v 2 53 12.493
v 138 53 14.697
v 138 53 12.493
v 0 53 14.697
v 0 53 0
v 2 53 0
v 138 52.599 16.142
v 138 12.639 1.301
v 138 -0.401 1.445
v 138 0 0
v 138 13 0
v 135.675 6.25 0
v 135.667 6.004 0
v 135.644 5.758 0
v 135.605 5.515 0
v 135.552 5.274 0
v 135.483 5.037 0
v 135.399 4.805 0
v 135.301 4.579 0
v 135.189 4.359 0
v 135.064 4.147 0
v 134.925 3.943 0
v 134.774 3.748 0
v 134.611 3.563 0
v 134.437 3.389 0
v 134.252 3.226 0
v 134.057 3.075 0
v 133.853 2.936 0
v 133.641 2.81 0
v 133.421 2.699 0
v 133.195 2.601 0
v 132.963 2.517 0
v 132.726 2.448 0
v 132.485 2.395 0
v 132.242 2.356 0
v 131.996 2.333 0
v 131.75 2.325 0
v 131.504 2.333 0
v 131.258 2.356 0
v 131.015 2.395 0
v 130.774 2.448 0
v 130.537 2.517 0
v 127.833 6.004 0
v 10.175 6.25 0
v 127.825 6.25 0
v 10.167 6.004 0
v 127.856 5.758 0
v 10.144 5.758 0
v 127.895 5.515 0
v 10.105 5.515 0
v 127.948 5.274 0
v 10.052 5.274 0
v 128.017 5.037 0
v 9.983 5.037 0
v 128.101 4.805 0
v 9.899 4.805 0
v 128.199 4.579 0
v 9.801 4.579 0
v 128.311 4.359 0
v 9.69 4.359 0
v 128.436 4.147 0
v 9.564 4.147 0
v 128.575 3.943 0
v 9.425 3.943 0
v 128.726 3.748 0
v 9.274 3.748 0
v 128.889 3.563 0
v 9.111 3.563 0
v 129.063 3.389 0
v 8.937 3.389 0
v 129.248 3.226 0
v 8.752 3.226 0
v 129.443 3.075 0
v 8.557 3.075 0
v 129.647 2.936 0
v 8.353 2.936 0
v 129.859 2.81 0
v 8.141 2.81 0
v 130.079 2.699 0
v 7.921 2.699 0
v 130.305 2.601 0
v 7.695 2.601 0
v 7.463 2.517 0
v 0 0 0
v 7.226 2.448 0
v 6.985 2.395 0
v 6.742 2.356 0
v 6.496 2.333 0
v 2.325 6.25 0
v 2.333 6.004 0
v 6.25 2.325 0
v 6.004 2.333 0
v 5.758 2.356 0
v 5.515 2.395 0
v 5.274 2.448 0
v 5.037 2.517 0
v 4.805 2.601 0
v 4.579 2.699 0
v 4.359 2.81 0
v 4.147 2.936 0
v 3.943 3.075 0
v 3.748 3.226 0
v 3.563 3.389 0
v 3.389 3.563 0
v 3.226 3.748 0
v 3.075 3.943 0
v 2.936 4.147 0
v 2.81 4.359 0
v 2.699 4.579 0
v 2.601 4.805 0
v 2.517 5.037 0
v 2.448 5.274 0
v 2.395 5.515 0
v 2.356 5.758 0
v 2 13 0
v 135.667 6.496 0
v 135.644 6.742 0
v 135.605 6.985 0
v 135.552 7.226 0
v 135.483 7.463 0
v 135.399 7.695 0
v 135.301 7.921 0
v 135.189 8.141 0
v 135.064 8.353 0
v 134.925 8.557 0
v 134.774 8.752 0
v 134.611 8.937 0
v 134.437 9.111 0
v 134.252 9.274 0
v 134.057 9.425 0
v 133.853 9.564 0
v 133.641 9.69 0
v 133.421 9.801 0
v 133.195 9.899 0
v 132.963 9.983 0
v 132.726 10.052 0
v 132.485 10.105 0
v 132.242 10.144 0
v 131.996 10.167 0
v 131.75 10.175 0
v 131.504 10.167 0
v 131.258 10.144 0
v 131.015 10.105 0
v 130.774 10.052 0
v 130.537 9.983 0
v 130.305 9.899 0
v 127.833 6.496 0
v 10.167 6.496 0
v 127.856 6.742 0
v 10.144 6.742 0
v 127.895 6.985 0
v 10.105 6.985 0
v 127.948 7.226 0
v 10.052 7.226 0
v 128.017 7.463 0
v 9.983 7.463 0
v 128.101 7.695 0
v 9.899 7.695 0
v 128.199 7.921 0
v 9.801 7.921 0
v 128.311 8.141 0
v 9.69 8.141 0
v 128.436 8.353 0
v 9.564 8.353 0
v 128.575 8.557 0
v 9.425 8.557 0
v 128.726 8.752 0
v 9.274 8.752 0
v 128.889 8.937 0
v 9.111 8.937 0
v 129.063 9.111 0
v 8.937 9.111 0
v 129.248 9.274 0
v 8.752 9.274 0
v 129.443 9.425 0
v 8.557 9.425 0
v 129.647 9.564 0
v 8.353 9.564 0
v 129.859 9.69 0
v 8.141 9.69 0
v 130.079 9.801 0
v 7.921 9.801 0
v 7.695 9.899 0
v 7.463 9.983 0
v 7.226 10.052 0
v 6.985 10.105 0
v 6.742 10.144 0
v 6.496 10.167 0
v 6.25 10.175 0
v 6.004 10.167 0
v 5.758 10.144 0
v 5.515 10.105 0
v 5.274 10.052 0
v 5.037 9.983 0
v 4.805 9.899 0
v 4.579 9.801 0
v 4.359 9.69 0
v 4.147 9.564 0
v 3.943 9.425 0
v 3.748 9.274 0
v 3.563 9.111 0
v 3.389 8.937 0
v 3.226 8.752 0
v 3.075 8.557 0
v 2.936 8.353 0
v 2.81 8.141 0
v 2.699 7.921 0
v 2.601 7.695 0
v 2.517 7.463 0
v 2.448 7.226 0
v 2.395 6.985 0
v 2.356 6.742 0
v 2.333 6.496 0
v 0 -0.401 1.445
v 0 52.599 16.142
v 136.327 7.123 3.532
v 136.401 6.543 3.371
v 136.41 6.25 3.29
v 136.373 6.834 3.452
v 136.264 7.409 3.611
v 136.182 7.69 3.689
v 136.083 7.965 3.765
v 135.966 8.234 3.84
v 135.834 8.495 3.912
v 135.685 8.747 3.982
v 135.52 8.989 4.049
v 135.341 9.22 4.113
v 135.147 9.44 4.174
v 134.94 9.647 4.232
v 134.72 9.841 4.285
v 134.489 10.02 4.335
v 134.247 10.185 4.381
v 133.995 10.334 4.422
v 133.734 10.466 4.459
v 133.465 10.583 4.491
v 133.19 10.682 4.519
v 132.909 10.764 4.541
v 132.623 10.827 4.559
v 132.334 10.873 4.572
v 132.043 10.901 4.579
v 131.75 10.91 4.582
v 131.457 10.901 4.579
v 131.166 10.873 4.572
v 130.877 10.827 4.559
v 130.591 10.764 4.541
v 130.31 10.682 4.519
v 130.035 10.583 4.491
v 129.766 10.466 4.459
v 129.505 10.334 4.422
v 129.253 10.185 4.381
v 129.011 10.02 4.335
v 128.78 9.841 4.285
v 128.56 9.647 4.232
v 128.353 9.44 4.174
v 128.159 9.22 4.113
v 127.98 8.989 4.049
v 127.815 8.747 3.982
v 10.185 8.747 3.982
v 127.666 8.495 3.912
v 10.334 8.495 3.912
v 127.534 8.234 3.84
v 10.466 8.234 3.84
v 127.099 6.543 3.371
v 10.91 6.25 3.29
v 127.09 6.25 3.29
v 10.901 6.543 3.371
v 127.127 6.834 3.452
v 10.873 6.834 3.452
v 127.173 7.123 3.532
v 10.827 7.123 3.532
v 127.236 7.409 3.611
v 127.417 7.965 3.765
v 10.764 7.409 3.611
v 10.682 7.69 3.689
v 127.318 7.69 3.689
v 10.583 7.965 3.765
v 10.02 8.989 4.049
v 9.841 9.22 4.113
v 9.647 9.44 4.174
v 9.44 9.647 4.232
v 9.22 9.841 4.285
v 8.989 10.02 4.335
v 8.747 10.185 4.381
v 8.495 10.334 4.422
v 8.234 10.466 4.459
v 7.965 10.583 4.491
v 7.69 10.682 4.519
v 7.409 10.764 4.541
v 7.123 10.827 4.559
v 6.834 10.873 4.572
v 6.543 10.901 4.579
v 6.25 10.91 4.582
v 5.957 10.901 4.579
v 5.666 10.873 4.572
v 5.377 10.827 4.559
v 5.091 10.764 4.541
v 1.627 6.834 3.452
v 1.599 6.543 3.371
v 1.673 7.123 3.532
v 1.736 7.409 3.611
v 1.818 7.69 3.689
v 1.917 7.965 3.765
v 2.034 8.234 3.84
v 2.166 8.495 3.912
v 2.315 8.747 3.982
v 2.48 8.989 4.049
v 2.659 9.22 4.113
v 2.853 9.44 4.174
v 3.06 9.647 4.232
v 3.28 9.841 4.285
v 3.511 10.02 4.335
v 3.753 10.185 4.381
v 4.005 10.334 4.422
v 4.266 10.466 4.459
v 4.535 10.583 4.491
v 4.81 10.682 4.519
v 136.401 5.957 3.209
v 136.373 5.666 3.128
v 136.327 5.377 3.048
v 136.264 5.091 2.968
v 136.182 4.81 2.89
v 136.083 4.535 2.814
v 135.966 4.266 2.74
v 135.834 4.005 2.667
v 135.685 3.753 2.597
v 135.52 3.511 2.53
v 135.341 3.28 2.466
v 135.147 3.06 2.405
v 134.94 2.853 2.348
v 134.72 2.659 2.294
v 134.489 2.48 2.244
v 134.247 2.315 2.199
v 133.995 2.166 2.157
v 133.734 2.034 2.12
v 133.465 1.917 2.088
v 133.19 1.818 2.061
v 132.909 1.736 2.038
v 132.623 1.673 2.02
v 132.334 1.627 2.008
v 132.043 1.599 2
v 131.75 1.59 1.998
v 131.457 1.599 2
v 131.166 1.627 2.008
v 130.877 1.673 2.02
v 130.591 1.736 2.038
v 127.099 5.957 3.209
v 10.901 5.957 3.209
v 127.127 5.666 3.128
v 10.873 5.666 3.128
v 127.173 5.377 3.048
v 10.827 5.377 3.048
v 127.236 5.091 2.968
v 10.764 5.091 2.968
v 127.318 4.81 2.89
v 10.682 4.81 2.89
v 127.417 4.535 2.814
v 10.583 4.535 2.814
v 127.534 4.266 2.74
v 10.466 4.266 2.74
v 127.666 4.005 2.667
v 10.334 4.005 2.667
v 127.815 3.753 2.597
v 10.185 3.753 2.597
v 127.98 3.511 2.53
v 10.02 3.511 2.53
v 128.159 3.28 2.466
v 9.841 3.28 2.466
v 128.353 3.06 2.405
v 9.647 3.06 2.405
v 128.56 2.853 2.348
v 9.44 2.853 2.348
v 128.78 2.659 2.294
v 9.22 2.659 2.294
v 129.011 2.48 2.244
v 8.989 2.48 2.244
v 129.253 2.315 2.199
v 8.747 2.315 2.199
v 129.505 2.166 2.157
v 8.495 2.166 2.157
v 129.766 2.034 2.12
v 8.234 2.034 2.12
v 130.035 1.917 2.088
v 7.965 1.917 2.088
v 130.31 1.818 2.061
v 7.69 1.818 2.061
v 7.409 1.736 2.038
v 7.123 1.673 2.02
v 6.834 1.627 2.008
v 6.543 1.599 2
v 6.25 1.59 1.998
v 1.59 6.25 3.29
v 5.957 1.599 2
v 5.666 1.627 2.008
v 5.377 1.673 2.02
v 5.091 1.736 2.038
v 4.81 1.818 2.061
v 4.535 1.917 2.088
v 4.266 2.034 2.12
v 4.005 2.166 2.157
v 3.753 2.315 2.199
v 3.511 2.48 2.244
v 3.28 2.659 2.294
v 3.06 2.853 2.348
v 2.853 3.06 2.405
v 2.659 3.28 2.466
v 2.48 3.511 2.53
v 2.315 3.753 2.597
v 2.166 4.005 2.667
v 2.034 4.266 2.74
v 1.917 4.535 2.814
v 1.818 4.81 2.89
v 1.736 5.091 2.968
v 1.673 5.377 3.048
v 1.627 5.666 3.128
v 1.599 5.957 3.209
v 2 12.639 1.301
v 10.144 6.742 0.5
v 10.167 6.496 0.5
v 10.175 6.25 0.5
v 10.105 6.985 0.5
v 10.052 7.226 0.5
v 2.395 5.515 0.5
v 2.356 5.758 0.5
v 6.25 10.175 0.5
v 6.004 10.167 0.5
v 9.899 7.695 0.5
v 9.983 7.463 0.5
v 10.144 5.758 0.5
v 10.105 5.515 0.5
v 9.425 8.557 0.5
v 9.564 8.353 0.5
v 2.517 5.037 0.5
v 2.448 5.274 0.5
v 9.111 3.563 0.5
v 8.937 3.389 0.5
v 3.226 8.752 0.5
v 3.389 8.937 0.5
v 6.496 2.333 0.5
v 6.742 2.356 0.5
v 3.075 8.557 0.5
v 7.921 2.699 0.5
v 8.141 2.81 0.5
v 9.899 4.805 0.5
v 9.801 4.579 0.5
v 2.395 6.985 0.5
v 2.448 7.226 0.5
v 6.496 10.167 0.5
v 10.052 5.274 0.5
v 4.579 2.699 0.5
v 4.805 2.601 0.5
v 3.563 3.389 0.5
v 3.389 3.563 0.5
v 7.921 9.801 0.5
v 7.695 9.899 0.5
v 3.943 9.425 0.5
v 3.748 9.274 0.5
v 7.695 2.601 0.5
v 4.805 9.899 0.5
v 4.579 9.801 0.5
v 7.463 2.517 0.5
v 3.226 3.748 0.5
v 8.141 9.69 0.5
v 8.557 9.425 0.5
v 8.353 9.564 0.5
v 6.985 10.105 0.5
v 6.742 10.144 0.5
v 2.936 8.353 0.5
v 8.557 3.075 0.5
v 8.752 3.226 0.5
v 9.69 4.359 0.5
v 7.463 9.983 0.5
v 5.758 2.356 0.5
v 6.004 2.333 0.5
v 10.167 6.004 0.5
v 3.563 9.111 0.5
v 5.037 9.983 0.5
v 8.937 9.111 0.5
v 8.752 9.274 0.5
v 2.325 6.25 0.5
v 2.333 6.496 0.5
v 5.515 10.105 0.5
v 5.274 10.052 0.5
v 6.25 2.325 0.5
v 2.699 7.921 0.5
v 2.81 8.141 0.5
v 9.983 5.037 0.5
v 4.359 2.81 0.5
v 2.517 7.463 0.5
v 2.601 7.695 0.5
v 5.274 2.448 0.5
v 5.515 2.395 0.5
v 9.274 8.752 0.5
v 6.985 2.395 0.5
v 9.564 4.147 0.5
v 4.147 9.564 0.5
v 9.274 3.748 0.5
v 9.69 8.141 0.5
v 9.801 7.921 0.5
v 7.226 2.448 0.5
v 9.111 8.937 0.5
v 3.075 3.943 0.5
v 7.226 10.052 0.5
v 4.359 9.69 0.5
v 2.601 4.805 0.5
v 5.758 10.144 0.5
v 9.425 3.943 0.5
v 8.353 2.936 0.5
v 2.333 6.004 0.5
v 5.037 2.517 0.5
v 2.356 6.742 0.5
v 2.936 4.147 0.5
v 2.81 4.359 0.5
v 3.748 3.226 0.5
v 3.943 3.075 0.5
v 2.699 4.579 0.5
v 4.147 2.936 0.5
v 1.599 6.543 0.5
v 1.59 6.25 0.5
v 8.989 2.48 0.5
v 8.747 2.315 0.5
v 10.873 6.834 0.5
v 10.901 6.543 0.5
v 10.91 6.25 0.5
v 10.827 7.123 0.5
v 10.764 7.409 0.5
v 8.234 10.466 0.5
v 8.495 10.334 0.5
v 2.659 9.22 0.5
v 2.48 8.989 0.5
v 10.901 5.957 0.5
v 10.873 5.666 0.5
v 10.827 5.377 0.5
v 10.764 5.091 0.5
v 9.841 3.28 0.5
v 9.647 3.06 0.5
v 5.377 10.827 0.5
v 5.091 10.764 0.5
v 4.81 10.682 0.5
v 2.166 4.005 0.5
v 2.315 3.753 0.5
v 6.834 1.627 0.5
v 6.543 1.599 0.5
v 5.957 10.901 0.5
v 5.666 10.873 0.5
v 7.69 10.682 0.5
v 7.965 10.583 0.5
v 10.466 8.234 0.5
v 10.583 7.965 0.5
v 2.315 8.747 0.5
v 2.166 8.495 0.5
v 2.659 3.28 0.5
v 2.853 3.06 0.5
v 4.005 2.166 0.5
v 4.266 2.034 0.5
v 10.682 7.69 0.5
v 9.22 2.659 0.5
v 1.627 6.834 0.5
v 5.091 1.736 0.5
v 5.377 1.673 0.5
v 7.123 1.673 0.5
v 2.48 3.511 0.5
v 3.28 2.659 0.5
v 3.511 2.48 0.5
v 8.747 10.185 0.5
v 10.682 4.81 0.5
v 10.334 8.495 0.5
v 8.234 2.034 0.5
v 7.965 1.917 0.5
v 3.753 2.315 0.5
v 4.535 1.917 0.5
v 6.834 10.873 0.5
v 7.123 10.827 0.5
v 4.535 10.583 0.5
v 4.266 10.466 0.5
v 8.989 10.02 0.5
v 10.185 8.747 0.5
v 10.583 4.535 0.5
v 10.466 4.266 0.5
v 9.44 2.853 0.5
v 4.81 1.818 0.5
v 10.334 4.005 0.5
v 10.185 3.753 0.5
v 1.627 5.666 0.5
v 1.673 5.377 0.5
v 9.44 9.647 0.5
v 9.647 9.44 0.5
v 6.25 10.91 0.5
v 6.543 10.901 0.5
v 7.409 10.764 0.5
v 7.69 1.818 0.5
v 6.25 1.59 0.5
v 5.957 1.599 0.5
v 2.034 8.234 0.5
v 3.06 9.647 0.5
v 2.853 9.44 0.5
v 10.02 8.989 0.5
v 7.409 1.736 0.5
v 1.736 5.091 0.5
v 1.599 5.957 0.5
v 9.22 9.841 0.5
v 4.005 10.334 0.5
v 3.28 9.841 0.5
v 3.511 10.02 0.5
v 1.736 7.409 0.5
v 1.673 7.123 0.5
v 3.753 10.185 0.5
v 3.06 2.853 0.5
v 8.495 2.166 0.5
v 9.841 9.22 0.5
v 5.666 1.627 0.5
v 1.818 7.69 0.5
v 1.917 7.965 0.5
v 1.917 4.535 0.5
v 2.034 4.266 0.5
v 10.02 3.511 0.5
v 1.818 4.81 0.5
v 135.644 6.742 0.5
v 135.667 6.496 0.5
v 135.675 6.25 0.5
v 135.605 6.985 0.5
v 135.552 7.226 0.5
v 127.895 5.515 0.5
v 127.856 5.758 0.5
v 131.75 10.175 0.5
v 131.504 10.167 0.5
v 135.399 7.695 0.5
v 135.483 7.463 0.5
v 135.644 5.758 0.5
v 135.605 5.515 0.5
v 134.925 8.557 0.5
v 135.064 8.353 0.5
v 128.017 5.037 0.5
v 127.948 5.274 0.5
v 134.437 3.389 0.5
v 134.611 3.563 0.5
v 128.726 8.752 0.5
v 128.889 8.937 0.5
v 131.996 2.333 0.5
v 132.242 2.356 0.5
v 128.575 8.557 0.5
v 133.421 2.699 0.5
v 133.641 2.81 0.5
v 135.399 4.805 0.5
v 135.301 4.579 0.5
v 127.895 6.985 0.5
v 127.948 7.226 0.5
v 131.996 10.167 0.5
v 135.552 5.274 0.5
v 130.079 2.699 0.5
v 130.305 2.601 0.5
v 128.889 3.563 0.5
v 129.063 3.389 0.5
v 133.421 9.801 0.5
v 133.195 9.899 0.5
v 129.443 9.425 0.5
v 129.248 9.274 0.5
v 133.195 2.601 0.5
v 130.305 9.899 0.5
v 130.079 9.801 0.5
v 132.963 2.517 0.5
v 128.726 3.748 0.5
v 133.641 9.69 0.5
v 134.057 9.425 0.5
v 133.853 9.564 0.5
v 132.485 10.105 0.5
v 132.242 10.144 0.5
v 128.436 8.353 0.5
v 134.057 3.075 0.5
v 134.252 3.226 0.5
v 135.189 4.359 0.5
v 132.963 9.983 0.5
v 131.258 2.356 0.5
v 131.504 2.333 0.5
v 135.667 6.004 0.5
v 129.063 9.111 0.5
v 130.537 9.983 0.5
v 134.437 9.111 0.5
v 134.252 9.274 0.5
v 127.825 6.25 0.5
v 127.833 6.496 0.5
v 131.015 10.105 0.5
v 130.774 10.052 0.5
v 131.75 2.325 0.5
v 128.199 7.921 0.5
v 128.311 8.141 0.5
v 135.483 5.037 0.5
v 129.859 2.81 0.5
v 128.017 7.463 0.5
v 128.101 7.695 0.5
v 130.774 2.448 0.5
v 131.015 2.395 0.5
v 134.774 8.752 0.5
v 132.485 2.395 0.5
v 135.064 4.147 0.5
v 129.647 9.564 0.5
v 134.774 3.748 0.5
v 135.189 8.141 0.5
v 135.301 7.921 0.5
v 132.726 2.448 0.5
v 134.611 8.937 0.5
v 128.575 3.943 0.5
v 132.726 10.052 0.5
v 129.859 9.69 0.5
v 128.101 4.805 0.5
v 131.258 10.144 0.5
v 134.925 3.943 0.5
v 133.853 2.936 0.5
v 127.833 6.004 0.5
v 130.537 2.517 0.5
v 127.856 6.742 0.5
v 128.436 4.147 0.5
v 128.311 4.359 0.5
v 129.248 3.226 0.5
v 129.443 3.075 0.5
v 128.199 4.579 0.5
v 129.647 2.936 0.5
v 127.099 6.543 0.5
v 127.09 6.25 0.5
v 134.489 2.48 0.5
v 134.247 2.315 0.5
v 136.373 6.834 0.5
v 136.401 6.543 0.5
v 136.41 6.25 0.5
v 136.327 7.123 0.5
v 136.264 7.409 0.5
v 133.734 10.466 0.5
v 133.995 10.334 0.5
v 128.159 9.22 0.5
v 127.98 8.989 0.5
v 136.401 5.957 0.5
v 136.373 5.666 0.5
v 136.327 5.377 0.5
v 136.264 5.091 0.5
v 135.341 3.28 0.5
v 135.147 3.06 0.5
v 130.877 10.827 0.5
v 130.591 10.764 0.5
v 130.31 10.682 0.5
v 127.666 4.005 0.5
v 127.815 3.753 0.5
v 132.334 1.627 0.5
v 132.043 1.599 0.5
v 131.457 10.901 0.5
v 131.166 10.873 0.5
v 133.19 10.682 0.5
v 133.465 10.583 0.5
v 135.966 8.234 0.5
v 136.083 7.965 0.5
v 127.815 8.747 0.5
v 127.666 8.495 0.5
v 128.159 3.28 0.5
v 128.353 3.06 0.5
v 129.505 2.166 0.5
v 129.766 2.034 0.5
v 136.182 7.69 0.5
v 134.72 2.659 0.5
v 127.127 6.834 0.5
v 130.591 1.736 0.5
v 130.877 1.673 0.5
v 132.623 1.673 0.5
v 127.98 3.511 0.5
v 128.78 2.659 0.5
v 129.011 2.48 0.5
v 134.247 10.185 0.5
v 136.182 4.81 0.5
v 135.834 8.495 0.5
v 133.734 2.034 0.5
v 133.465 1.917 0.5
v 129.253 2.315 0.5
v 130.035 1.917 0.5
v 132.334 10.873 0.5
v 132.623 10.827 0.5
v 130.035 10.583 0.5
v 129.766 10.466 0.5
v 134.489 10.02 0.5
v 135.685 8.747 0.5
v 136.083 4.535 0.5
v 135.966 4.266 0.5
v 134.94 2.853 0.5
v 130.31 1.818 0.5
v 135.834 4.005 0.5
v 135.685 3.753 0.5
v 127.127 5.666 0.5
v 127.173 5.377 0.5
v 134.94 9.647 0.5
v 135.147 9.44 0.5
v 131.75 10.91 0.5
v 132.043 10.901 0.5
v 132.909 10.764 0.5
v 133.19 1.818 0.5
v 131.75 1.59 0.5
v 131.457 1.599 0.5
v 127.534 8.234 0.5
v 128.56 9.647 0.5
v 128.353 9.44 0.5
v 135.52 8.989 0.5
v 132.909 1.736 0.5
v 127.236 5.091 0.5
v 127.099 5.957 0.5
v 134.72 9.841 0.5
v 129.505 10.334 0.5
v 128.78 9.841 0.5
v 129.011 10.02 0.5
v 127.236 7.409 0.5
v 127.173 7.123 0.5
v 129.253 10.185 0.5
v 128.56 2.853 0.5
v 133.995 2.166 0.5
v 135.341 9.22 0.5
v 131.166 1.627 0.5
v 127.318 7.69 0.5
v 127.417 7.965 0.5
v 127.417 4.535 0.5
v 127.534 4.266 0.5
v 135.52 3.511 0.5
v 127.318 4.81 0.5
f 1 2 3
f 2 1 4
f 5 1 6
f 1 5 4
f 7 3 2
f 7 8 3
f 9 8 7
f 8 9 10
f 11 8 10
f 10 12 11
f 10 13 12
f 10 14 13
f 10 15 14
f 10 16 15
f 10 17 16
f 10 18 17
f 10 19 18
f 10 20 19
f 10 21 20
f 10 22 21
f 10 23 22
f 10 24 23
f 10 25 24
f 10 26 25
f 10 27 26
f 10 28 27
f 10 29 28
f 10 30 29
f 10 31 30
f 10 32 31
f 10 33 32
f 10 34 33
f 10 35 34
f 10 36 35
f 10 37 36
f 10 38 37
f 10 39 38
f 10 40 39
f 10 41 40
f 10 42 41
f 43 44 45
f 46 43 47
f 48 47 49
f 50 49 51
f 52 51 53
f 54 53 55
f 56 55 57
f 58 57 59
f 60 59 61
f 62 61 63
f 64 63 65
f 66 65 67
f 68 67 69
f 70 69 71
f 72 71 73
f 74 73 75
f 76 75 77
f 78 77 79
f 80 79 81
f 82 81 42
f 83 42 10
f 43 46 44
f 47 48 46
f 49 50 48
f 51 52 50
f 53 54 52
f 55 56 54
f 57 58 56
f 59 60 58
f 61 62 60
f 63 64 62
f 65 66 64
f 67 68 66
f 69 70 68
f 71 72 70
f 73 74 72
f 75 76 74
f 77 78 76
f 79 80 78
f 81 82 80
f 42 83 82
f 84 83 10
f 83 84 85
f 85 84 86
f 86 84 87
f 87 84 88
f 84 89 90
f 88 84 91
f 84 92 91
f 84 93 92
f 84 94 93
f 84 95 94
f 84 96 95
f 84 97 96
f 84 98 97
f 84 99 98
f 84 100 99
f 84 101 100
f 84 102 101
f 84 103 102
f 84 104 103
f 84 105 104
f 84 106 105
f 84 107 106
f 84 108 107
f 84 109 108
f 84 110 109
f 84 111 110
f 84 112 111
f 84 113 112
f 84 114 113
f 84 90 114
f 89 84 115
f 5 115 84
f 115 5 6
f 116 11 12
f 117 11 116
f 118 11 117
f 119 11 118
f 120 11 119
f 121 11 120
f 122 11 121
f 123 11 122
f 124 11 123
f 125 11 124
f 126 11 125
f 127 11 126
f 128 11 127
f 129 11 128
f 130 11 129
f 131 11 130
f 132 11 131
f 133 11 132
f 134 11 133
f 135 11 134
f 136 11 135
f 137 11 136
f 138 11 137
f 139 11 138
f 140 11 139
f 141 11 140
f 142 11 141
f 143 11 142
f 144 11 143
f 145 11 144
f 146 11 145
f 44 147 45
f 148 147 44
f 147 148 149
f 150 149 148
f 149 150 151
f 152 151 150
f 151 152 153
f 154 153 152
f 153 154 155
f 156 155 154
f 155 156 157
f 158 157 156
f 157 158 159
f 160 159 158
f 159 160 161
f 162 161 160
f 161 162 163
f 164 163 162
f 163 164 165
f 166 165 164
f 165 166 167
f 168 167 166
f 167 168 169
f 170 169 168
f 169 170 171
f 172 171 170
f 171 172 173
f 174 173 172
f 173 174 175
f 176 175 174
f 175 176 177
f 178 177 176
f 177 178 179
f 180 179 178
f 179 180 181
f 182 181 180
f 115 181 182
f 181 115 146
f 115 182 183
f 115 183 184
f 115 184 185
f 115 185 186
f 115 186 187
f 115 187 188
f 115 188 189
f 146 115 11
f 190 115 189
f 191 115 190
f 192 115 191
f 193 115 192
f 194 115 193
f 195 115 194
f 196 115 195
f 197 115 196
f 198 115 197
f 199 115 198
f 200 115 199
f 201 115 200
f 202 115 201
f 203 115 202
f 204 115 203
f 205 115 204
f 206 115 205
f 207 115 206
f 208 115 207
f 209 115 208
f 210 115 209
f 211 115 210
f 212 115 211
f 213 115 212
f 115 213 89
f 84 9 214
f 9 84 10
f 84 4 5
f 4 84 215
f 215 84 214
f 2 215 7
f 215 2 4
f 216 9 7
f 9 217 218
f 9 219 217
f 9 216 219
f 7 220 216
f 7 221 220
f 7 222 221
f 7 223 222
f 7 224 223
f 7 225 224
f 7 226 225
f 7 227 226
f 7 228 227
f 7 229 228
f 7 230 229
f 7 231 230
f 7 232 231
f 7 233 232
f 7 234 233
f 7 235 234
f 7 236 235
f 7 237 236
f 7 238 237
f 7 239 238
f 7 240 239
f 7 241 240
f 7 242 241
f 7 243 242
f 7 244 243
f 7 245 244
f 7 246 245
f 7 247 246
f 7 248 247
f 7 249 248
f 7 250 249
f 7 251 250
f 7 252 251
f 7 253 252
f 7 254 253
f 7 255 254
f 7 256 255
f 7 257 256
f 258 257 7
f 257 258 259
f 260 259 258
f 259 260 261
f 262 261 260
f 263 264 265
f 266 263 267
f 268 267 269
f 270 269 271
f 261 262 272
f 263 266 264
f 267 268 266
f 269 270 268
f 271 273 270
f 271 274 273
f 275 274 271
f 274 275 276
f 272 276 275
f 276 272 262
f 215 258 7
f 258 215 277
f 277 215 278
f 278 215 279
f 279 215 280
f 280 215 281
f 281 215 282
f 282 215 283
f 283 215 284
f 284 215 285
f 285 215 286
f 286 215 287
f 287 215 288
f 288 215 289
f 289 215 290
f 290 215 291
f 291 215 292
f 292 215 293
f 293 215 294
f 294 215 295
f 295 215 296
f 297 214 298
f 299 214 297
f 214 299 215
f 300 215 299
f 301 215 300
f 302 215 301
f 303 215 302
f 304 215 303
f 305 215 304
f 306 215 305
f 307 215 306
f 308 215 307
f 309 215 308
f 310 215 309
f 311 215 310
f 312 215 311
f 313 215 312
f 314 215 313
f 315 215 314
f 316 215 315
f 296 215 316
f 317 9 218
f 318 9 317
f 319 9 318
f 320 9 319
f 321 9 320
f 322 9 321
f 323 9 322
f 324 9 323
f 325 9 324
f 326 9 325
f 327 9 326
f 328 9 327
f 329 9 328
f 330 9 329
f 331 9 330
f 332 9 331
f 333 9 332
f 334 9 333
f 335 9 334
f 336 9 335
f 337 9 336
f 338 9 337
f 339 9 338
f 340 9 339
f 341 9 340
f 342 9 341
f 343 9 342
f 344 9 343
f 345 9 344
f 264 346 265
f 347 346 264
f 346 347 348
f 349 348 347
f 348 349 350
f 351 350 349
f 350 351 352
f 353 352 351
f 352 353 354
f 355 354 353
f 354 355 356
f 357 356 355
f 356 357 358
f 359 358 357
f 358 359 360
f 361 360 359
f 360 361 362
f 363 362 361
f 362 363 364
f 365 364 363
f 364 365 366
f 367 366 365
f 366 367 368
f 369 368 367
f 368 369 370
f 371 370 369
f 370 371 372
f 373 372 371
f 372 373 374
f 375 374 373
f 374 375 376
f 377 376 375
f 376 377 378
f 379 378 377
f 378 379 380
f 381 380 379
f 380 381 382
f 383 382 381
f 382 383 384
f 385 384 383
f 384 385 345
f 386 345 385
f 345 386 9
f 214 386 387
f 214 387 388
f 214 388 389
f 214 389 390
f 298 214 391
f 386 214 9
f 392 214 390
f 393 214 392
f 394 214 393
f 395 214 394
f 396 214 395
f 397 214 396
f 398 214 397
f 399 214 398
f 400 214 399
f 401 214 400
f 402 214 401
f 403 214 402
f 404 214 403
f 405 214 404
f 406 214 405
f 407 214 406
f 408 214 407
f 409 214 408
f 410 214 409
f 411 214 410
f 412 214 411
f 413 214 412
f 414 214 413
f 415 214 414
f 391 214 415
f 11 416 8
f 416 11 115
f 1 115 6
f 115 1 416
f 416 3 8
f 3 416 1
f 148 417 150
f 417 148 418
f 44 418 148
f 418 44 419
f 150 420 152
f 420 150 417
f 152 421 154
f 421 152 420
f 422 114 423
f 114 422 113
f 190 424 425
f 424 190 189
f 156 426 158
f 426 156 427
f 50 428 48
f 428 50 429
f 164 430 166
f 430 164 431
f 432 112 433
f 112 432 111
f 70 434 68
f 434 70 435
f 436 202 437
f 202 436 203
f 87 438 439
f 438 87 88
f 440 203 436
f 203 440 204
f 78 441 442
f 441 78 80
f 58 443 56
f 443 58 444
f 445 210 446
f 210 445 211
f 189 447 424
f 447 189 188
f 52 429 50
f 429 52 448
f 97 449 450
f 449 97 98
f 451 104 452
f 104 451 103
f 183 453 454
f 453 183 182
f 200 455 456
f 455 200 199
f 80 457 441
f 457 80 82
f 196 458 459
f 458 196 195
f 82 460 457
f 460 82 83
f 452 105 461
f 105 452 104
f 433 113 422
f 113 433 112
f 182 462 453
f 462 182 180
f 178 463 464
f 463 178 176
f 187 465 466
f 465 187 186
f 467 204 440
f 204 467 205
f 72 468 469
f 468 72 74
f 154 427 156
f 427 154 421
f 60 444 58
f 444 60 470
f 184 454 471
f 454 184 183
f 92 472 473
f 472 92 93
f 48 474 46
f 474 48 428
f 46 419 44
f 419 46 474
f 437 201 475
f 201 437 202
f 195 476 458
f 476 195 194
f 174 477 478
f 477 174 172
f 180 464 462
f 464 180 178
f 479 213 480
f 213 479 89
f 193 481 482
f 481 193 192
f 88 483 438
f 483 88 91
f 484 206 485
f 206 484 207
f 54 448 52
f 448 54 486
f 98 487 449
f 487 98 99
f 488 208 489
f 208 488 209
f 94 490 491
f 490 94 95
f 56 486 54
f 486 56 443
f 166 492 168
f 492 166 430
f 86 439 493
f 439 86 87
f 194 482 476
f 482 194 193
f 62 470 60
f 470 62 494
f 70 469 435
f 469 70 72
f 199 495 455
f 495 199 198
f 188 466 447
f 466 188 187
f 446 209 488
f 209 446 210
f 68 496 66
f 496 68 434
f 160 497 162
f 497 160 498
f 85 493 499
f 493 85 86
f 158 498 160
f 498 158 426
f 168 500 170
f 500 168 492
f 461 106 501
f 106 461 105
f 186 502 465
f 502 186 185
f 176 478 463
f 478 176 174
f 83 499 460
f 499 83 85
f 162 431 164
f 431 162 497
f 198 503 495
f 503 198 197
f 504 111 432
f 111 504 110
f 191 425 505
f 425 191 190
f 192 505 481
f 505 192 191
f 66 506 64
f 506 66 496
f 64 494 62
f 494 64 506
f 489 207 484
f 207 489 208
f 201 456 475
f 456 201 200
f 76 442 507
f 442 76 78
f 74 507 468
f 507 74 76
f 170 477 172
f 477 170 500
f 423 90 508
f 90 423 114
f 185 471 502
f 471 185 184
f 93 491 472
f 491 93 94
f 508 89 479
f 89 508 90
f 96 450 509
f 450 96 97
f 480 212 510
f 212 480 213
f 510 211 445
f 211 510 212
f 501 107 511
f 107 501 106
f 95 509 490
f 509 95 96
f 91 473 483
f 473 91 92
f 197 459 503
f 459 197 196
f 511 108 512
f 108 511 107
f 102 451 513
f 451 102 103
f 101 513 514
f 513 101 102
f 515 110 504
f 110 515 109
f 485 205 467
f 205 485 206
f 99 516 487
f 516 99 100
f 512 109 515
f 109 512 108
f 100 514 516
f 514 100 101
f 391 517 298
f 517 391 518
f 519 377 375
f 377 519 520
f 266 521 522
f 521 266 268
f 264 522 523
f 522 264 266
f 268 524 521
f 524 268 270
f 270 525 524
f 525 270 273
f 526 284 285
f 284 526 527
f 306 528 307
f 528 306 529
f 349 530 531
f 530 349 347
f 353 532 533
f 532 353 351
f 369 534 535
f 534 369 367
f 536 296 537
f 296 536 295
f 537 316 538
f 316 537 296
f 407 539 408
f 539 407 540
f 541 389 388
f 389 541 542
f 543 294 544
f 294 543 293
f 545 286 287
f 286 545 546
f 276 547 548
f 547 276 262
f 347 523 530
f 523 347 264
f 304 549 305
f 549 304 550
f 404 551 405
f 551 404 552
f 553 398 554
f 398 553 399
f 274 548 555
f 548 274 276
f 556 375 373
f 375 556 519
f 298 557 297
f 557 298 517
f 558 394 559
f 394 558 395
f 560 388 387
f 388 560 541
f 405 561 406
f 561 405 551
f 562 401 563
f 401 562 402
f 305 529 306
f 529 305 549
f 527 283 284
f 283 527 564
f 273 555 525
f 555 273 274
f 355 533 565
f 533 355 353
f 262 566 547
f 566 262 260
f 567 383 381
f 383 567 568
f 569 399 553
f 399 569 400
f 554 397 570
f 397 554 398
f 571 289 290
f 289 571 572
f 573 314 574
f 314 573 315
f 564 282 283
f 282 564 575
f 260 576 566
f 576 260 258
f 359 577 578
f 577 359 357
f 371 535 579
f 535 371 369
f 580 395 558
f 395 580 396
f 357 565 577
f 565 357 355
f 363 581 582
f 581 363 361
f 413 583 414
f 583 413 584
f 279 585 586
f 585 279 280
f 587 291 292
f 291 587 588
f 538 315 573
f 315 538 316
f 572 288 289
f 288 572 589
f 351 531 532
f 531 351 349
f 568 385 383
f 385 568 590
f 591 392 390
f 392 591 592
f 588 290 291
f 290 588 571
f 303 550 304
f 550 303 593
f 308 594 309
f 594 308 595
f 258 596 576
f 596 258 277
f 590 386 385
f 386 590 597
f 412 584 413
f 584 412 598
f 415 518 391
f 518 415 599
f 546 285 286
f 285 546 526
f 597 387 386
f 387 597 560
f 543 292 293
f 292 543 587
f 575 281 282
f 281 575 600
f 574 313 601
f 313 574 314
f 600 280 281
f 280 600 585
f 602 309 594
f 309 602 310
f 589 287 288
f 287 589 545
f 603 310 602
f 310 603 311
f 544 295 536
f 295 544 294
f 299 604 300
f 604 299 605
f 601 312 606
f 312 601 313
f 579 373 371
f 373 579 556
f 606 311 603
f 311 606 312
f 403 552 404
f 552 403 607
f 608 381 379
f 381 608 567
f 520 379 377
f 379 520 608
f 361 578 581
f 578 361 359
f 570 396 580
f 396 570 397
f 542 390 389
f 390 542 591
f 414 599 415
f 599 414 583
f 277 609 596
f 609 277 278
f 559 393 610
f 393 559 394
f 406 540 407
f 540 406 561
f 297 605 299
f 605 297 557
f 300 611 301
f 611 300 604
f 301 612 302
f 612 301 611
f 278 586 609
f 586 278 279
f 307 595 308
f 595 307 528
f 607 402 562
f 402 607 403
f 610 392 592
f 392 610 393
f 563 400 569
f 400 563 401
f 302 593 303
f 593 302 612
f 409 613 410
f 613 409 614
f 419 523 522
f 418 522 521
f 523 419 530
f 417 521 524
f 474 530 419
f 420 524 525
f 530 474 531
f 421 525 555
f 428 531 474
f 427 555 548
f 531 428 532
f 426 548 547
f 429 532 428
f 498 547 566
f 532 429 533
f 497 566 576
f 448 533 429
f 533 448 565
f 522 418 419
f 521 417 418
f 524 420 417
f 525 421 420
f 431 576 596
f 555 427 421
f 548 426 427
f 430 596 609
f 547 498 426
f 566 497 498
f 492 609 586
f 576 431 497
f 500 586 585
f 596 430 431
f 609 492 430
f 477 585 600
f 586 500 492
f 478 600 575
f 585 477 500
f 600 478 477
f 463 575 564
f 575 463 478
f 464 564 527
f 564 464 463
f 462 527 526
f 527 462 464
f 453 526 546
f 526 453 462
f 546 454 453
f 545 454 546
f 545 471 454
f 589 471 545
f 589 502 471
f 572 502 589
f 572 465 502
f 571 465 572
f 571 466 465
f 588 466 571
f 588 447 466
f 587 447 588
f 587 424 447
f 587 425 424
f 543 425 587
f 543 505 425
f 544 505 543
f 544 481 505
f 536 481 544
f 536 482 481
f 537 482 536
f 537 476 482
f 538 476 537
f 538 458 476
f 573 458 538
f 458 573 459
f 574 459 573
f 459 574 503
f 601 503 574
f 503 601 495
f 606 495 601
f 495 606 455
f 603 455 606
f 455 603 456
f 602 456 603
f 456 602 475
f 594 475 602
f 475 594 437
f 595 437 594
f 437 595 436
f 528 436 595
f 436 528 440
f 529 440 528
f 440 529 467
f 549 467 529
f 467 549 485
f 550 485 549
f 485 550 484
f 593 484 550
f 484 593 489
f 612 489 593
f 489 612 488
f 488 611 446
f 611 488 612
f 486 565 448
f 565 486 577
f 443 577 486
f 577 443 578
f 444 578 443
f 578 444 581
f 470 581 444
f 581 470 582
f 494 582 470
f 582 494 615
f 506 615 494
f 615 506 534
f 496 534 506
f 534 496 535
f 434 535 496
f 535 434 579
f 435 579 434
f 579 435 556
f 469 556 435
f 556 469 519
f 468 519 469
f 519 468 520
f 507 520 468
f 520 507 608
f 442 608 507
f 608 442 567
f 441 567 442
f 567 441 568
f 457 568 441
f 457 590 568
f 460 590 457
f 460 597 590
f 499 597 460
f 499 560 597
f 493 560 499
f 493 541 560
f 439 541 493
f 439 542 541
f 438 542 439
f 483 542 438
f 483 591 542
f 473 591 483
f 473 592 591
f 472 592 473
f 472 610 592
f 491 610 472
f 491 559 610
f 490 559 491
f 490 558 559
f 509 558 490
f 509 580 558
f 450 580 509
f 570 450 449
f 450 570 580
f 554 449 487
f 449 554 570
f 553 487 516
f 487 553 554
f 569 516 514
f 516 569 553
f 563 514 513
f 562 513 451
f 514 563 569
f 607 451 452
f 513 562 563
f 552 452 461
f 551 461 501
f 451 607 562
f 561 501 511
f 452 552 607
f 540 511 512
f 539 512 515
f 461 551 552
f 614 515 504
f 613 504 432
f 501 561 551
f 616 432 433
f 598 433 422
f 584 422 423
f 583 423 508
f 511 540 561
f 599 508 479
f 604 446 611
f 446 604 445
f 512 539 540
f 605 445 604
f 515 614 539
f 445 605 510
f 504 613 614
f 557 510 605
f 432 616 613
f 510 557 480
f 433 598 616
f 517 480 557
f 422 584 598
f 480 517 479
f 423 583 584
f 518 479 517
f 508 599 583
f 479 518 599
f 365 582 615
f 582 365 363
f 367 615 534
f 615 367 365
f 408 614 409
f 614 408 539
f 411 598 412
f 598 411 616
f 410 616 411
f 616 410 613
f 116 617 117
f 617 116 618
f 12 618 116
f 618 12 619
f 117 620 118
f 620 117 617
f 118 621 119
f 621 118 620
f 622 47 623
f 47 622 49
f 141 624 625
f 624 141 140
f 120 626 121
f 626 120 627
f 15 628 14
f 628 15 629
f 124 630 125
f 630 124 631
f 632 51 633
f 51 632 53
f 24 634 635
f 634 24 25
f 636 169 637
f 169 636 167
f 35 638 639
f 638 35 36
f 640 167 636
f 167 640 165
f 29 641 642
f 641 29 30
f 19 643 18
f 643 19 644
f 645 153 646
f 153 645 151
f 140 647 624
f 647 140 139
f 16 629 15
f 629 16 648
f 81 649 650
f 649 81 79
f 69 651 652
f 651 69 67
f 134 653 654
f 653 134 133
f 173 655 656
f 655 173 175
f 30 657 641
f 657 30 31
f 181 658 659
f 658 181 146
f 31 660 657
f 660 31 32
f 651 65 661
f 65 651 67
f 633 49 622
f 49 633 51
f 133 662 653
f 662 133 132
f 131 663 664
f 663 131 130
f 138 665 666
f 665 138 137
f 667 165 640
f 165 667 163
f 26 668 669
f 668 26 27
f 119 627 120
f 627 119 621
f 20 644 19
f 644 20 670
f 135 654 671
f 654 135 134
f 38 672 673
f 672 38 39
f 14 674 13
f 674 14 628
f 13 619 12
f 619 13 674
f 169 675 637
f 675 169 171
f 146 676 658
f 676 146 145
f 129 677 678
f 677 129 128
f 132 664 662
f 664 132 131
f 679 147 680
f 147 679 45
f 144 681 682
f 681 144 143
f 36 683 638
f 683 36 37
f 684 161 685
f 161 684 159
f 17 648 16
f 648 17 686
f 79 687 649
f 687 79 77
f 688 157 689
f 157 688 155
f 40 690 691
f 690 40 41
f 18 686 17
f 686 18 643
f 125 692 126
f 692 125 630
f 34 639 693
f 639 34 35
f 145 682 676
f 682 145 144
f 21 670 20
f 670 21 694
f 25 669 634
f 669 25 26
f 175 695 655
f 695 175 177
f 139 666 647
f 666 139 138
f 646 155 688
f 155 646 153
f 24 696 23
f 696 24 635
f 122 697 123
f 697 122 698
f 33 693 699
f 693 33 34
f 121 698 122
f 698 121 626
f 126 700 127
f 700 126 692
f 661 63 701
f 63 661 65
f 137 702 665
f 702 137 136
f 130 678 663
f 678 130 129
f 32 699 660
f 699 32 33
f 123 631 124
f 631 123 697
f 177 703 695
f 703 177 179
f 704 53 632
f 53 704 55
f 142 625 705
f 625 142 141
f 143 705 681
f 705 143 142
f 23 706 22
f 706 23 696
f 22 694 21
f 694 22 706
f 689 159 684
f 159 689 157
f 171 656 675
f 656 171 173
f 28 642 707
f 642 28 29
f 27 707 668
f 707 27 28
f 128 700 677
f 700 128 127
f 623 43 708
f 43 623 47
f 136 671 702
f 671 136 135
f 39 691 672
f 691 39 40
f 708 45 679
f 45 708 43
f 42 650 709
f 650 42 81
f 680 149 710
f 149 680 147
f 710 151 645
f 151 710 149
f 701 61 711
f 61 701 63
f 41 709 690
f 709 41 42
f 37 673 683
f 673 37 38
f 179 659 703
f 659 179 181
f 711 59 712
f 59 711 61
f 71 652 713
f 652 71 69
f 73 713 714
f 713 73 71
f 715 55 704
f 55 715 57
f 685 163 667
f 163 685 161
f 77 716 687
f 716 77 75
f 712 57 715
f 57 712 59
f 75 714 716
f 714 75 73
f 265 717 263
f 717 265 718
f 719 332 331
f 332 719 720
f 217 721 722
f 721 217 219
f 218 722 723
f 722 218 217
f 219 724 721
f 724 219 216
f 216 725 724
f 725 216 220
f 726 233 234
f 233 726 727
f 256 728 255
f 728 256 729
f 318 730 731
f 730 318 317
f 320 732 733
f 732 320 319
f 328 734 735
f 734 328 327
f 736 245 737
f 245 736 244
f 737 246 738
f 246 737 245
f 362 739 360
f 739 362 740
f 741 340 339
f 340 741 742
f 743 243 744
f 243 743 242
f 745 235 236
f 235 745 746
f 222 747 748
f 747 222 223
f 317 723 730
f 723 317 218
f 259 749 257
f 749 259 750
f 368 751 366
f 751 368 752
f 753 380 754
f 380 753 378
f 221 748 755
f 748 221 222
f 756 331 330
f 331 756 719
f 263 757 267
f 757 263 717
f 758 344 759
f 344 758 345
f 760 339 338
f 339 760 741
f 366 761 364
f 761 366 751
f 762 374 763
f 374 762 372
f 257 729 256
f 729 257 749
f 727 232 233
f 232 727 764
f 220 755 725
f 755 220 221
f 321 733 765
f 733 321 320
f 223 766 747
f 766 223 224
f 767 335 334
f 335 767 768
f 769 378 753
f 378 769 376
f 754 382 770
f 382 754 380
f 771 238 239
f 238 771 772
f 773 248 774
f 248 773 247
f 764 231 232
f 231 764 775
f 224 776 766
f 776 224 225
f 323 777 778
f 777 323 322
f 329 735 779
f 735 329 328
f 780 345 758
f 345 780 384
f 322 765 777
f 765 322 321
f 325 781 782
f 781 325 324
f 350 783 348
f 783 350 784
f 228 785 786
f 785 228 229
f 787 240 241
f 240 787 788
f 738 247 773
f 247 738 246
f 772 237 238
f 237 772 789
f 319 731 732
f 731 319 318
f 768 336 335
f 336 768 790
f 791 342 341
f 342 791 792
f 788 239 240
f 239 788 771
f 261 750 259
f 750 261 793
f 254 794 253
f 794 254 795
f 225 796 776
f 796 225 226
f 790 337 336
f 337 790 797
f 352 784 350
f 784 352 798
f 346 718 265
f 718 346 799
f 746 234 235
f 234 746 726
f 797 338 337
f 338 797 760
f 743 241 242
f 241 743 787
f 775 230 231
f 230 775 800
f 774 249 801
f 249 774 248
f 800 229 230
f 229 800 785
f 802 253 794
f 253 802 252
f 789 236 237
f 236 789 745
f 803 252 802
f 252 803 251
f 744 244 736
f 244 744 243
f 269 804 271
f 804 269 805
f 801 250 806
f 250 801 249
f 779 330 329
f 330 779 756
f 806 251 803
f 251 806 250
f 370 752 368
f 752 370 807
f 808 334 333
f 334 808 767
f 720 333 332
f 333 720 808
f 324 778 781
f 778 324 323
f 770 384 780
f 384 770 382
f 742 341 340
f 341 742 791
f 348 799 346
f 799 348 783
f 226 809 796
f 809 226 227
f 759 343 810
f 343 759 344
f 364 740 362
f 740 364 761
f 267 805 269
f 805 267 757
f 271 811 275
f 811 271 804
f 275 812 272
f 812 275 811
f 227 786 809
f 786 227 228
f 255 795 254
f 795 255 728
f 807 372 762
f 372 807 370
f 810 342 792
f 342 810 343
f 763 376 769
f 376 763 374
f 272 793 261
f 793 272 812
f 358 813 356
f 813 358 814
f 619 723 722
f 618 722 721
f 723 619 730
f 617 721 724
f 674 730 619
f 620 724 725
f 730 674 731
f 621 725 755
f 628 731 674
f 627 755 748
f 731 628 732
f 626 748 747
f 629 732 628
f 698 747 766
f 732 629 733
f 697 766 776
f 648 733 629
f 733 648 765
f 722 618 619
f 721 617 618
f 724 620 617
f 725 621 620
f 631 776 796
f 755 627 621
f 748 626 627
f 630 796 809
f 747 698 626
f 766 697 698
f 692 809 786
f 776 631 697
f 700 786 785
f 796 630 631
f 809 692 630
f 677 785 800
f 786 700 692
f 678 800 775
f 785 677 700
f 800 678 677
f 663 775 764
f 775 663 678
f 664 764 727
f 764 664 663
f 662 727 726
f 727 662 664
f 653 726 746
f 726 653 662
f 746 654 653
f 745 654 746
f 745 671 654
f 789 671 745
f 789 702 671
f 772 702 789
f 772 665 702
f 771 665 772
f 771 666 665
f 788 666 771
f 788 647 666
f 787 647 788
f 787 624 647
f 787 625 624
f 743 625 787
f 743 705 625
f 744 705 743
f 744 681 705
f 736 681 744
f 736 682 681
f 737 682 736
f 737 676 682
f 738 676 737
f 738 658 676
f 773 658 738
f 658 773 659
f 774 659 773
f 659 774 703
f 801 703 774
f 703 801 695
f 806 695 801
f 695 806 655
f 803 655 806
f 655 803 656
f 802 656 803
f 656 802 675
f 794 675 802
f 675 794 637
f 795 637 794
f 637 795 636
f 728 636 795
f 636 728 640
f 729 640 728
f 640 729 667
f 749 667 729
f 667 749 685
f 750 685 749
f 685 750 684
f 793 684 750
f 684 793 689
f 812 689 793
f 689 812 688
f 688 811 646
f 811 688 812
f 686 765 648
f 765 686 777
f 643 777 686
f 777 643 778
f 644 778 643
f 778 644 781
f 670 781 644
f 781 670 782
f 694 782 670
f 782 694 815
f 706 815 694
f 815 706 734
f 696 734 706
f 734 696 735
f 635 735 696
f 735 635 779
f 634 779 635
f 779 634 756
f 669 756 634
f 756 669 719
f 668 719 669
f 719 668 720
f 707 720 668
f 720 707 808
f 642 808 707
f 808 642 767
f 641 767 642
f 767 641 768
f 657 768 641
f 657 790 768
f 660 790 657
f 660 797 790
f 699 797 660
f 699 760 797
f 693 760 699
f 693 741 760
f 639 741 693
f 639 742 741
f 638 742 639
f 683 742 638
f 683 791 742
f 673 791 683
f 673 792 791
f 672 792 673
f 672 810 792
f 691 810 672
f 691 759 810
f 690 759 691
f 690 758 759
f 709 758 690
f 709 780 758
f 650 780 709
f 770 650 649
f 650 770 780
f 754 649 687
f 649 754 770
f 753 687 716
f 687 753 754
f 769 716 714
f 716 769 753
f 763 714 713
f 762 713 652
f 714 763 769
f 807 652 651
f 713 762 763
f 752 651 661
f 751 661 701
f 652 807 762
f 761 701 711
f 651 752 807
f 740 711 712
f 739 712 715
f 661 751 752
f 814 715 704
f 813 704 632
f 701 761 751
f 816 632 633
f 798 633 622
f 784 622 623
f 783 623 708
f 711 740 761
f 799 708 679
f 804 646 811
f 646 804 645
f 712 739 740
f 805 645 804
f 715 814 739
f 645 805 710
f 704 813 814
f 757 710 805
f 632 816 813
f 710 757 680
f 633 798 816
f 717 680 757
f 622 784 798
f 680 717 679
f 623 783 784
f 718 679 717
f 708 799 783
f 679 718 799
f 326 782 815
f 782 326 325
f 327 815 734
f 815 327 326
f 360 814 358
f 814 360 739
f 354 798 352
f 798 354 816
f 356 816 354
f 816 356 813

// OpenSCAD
//minkowski() {
//    difference() {
//        cube([138, 53, 1.5]);
//        union() {
//            translate([6.25, 6.25, 0])
//            screw_hole();
//            translate([138 - 6.25, 6.25, 0])
//            screw_hole();
//        }
//    }
//    cylinder(r=1, h=0.01, $fn=24);
//}

$fn=100;
module screw_hole() {
    color("black")
    cylinder(r=7.85/2, h=5.5);

    color("red")
    translate([0, 0, .5])
    cylinder(r=9.32/2, h=5);
}

//difference() {
//    cube([138, 53, 1.5]);
//    union() {
//        translate([6.25, 6.25, 0])
//        screw_hole();
//        translate([138 - 6.25, 6.25, 0])
//        screw_hole();
//    }
//}


module prism() {
    hull() {
        cube([138, 53, 1.5]);

        color("red")
        rotate([acos(53/55),0,0])
        cube([1,55,1.5]);

        color("red")
        rotate([acos(53/55),0,0])
        translate([138-1,0,0])
        cube([1,55,1.5]);
    }
}

difference() {
    difference() {
        prism();
        translate([2,13,0])
        scale([0.99,0.9,0.9])
        prism();
    }
    translate([6.25, 6.25, 0])
    screw_hole();
    translate([138 - 6.25, 6.25, 0])
    screw_hole();
}
